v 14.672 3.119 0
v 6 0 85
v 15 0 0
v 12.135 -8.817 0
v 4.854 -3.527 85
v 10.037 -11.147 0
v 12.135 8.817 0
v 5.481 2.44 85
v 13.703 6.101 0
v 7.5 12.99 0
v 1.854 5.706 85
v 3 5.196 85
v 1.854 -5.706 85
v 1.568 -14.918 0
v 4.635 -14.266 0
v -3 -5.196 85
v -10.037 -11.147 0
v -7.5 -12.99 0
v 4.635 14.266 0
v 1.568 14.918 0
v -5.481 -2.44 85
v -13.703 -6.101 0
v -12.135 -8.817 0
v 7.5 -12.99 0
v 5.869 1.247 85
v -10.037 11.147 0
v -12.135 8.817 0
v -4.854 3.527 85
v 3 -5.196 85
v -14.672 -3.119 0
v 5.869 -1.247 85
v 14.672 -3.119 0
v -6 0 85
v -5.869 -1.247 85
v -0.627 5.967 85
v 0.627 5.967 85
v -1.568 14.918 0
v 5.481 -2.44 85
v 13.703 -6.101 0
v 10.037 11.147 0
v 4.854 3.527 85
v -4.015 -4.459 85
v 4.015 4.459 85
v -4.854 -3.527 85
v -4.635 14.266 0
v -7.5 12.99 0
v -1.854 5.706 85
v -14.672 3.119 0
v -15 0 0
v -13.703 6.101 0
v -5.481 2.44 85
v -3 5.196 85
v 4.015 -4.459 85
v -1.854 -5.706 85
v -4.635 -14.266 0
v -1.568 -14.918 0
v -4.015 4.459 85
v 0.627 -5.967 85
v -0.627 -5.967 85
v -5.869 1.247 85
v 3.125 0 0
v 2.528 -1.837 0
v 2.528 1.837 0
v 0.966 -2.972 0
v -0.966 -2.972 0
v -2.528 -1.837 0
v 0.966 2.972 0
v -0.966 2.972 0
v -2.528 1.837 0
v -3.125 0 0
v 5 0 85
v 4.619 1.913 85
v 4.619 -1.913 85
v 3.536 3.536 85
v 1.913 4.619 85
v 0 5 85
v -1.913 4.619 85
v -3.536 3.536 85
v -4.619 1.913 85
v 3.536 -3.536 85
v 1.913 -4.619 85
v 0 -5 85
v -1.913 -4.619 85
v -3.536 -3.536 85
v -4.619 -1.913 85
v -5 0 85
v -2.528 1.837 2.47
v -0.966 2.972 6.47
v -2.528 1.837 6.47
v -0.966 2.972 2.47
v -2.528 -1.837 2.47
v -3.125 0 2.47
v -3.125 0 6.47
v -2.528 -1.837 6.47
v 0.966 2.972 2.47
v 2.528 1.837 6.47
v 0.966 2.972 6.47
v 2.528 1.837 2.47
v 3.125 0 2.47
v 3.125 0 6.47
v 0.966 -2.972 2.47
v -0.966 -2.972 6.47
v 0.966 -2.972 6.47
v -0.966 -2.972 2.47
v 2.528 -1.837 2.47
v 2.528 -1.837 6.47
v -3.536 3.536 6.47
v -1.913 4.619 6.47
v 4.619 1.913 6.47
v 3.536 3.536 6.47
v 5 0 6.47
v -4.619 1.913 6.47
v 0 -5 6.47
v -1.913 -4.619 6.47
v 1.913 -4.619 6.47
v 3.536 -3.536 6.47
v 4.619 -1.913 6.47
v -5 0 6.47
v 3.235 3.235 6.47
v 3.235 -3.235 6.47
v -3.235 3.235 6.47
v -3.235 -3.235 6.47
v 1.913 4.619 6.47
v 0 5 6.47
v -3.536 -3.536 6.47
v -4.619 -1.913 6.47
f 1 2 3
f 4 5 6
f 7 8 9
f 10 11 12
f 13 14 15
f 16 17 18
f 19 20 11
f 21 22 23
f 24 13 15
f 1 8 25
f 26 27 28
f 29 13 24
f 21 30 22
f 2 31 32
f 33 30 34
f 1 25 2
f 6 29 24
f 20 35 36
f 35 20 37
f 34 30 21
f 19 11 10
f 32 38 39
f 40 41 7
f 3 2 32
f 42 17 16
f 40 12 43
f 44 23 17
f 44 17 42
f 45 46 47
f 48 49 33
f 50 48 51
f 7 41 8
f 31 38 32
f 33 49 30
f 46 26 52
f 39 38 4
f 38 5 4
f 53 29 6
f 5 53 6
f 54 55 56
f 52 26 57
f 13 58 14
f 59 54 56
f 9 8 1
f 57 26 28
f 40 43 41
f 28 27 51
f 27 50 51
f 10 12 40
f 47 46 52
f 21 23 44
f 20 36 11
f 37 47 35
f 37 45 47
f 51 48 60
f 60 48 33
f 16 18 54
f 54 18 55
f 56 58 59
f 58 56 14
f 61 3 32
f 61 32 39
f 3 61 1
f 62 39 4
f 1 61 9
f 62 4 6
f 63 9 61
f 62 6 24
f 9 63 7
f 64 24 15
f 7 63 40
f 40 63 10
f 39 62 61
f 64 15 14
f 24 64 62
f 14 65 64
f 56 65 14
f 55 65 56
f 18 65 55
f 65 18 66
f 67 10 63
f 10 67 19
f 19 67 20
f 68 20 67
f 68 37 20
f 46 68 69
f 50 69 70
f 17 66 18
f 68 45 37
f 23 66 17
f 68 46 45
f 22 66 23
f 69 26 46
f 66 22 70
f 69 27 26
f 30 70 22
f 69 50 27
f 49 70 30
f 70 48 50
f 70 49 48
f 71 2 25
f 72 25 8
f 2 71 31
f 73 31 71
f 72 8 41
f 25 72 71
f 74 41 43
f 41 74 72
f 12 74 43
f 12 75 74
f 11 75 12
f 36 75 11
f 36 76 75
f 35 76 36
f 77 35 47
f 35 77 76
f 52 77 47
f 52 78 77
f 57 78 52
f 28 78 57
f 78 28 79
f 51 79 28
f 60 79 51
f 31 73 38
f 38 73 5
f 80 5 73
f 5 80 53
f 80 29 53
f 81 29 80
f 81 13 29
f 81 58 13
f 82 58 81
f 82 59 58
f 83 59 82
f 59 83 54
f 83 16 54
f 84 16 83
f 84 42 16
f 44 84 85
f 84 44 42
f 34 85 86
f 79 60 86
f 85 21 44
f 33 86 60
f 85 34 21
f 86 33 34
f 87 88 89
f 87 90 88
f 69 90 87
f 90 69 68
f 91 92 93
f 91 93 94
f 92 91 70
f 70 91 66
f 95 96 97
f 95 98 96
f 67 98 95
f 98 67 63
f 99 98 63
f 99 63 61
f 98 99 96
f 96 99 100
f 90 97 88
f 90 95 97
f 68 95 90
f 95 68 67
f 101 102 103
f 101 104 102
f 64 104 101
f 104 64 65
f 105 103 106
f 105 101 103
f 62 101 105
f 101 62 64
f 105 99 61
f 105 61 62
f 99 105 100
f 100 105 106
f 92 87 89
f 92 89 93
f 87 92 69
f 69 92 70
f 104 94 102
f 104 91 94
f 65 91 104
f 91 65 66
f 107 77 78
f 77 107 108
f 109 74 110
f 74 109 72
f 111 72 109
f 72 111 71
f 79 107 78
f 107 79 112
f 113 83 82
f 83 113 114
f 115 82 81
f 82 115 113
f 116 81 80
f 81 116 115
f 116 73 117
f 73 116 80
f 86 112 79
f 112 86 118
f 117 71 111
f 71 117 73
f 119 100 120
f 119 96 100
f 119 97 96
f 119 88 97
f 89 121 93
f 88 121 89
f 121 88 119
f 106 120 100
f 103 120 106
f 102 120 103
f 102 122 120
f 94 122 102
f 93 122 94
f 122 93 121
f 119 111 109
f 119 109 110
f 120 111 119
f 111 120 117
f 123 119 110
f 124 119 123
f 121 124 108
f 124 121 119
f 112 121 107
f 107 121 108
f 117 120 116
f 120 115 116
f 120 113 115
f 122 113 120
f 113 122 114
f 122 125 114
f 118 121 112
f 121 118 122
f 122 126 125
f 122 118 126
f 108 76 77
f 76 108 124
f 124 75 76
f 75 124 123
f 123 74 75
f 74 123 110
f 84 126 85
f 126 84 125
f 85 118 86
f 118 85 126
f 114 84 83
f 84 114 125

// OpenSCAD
/*
A conical drum to glue sand paper to in order to bore out the inside diameter of washers
*/


//module, a function that creates bolt hole object for difference
        
        module bolt_hole_module(height=height,bolt_hole_r=6.25/2,center=true){
            cylinder(h=height,r1=bolt_hole_r,r2=bolt_hole_r,center=center);
        }
        


//make cone

    height=85;
    cyl_base_radius=15; //diameter is 30 (16mm is needed)
    cyl_top_radius=6;   //bolt head is 10 mm diameter, 12 mm gives 2 mm buffer
    echo("Tangent angle is: ", atan(height/cyl_base_radius));

difference()
        {
         color("lightgreen")
            cylinder(height,cyl_base_radius,cyl_top_radius);
            
            bolt_hole_module();         
            
            //differnece cylinder
    translate([0,0,cube_height])
    {
    bolt_hole_module(height,bolt_hole_r=5,center=false);
    }
}

//add square insert

    bolt_head_span = 6.47;
    cube_height = bolt_head_span ;
    bolt_stem_radius =   6.25/2;
    bolt_head_depth = 4; 
            
            
 difference()
 {
 translate([0,0,1/2*cube_height])
    {
   color("orange") cube([cyl_base_radius*2-10,20,cube_height],center = true); //difference_cube
        }
 
 translate([0,0,cube_height*.5])
        {
            translate([0,0,cube_height-bolt_head_depth])
        {    
            color("blue")
            cube([bolt_head_span ,bolt_head_span ,cube_height],center = true);
            }
        }
        bolt_hole_module();
    }



    
    
    
    
    
    
    
